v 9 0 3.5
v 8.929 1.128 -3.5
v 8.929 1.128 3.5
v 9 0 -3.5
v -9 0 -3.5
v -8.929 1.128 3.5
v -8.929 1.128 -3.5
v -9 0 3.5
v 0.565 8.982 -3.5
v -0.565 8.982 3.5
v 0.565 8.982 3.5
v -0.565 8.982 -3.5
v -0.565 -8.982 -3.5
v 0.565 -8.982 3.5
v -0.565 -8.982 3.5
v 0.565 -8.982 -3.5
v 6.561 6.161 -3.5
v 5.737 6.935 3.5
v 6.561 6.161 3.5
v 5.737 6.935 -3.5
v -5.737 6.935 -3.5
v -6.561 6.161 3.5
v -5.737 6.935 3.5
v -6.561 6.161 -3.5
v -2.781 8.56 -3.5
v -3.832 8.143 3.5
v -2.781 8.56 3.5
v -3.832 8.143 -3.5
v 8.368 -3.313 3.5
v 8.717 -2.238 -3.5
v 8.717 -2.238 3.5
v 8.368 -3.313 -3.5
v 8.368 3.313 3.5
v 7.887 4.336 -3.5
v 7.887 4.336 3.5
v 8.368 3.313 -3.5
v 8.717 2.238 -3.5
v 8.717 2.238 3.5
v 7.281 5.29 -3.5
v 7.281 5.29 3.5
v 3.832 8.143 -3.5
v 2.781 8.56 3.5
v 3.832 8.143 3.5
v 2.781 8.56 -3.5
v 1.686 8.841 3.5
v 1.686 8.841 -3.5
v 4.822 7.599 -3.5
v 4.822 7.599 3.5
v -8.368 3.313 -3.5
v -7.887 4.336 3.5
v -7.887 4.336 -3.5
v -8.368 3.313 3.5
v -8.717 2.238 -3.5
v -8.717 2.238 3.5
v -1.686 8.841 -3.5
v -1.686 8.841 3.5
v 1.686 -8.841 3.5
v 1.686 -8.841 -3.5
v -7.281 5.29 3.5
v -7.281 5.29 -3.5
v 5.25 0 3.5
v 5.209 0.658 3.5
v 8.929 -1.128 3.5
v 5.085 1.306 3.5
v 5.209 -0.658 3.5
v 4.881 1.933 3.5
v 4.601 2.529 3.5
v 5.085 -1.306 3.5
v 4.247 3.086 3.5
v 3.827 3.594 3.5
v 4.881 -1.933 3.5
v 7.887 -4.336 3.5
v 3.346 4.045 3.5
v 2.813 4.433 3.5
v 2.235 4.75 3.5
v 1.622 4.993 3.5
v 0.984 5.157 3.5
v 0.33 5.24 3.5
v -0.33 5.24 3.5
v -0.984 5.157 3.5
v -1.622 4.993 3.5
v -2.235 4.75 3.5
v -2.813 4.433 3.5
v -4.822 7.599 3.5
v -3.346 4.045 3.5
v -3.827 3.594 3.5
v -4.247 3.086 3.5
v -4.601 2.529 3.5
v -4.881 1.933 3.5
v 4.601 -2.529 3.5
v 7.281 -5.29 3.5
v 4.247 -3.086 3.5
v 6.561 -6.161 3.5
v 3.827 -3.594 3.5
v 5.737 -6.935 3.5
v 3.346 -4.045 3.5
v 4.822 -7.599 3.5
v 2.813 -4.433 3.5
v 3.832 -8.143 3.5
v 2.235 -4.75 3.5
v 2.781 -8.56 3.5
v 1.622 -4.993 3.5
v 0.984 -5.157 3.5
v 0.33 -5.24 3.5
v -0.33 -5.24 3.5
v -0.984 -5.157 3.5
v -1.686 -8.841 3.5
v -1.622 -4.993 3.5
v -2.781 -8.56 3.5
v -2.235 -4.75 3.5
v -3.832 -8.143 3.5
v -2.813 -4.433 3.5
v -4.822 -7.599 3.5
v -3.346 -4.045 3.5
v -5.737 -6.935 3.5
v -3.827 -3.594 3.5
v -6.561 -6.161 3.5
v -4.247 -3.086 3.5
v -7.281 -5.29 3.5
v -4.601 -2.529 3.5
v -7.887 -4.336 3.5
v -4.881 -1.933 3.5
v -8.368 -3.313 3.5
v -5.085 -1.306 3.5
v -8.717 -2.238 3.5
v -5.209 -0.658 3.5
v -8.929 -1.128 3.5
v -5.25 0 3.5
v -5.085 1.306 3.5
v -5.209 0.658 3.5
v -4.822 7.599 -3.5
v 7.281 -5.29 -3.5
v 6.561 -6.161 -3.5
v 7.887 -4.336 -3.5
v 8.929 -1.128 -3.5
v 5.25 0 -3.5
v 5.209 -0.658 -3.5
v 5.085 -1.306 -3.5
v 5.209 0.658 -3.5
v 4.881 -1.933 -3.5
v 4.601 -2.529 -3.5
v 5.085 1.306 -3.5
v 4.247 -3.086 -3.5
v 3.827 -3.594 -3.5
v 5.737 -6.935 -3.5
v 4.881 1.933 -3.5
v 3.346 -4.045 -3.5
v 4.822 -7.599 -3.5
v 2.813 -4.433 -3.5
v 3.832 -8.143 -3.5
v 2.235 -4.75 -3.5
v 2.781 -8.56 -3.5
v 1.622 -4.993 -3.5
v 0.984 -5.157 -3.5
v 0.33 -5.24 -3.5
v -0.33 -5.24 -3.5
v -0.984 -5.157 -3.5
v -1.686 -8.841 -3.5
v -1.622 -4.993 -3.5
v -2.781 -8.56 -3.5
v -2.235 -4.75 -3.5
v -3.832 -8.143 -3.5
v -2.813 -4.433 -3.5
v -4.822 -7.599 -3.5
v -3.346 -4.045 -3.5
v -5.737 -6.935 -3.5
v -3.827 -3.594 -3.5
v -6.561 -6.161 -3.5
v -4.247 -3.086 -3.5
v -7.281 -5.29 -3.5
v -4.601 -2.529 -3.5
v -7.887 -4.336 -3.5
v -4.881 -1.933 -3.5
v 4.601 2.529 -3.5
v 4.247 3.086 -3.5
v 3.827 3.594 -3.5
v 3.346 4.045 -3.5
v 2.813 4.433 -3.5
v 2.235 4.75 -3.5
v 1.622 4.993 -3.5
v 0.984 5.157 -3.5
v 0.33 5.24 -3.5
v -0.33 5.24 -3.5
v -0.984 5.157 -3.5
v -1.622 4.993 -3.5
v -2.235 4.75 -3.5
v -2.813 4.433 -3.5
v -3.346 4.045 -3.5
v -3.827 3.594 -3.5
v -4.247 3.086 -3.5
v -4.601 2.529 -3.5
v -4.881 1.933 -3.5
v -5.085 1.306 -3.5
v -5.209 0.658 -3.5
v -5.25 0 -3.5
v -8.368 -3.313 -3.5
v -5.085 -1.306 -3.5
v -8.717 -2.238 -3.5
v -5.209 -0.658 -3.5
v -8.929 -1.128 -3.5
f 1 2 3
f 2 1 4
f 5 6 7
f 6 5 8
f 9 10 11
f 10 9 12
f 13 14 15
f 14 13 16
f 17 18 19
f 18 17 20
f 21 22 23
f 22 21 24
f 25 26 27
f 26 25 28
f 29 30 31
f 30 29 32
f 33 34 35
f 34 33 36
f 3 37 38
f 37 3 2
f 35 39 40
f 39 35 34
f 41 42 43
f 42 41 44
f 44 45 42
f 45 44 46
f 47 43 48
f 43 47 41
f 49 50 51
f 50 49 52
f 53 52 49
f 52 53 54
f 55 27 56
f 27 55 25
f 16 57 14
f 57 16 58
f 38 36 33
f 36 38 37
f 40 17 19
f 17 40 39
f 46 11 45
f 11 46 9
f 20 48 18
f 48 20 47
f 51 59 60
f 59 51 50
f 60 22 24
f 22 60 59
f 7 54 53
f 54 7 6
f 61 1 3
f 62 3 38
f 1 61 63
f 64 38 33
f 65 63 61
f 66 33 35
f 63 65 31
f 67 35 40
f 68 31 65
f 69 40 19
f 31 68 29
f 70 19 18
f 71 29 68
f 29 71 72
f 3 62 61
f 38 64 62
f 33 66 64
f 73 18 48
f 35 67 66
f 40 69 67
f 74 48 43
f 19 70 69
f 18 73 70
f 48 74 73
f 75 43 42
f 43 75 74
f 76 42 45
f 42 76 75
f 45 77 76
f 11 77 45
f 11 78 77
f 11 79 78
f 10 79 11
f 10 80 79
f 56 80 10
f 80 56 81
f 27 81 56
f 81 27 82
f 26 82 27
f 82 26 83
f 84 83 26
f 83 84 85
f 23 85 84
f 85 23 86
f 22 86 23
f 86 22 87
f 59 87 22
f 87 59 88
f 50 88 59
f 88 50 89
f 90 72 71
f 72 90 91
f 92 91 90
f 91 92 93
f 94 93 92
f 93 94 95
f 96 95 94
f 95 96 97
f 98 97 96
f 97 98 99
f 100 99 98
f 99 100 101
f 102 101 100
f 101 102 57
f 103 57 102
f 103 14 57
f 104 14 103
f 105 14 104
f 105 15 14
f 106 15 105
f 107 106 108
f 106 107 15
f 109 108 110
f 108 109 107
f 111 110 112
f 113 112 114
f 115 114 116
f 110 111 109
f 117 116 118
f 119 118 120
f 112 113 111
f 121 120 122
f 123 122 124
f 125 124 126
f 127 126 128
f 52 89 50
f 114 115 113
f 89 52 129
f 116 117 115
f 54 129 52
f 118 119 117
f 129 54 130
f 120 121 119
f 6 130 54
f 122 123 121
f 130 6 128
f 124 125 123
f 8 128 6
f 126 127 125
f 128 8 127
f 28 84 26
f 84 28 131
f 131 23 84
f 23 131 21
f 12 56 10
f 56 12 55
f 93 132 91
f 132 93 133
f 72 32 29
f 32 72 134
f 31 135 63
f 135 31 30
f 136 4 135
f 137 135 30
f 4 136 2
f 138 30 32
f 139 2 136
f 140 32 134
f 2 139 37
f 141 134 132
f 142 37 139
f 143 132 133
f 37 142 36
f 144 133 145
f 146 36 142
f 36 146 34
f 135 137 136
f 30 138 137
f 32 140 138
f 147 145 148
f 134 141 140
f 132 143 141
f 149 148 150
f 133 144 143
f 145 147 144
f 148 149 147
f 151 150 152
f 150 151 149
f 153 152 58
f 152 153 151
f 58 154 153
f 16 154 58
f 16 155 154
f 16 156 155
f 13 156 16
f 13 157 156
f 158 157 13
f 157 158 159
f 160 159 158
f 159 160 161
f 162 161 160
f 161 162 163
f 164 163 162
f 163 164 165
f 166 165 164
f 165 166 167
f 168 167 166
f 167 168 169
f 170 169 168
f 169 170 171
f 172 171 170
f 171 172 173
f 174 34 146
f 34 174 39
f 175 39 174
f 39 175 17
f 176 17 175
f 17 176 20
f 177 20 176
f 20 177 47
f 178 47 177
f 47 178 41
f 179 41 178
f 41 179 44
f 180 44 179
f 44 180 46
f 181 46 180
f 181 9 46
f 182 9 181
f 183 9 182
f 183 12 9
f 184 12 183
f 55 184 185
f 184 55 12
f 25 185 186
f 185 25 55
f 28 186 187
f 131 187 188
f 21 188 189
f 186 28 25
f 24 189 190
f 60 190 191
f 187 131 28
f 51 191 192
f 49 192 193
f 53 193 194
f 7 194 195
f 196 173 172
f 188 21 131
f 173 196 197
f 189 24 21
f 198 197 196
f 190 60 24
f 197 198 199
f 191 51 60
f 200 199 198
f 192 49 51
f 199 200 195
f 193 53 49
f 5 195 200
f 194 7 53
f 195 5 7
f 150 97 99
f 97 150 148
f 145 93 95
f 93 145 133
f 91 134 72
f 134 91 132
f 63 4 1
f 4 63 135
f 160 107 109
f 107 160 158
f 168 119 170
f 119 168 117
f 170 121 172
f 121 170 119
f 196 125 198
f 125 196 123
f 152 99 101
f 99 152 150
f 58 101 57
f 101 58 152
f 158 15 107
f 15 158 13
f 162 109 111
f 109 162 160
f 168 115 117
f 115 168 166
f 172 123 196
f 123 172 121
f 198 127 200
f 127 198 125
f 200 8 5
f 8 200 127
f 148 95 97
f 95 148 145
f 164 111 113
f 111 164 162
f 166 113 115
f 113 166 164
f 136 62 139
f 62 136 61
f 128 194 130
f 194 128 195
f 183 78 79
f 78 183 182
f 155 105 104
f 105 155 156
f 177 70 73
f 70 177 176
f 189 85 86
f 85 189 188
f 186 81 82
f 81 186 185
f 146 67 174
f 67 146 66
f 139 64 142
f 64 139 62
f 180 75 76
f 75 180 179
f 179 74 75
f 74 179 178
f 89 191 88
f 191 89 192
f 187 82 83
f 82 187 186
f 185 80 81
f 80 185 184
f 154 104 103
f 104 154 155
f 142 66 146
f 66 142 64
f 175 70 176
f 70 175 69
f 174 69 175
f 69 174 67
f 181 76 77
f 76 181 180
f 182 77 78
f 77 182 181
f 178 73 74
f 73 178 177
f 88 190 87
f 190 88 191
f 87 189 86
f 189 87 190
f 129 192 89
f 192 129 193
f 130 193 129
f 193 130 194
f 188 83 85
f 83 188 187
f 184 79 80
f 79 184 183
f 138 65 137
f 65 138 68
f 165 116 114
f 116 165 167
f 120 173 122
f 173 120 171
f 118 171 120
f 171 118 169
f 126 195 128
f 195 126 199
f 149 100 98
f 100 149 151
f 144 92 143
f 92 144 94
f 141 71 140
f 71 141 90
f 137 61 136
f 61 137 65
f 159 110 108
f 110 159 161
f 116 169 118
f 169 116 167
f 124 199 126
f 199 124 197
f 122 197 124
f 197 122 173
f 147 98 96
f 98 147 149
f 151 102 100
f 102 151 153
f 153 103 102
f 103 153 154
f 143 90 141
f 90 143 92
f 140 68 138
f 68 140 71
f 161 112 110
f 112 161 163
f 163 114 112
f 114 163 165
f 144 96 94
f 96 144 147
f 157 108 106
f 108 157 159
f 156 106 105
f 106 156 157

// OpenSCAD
$fn = 50;


difference() {
	union() {
		translate(v = [0, 0, -3.5000000000]) {
			cylinder(h = 7, r = 9.0000000000);
		}
	}
	union() {
		translate(v = [0, 0, -100.0000000000]) {
			cylinder(h = 200, r = 5.2500000000);
		}
	}
}
